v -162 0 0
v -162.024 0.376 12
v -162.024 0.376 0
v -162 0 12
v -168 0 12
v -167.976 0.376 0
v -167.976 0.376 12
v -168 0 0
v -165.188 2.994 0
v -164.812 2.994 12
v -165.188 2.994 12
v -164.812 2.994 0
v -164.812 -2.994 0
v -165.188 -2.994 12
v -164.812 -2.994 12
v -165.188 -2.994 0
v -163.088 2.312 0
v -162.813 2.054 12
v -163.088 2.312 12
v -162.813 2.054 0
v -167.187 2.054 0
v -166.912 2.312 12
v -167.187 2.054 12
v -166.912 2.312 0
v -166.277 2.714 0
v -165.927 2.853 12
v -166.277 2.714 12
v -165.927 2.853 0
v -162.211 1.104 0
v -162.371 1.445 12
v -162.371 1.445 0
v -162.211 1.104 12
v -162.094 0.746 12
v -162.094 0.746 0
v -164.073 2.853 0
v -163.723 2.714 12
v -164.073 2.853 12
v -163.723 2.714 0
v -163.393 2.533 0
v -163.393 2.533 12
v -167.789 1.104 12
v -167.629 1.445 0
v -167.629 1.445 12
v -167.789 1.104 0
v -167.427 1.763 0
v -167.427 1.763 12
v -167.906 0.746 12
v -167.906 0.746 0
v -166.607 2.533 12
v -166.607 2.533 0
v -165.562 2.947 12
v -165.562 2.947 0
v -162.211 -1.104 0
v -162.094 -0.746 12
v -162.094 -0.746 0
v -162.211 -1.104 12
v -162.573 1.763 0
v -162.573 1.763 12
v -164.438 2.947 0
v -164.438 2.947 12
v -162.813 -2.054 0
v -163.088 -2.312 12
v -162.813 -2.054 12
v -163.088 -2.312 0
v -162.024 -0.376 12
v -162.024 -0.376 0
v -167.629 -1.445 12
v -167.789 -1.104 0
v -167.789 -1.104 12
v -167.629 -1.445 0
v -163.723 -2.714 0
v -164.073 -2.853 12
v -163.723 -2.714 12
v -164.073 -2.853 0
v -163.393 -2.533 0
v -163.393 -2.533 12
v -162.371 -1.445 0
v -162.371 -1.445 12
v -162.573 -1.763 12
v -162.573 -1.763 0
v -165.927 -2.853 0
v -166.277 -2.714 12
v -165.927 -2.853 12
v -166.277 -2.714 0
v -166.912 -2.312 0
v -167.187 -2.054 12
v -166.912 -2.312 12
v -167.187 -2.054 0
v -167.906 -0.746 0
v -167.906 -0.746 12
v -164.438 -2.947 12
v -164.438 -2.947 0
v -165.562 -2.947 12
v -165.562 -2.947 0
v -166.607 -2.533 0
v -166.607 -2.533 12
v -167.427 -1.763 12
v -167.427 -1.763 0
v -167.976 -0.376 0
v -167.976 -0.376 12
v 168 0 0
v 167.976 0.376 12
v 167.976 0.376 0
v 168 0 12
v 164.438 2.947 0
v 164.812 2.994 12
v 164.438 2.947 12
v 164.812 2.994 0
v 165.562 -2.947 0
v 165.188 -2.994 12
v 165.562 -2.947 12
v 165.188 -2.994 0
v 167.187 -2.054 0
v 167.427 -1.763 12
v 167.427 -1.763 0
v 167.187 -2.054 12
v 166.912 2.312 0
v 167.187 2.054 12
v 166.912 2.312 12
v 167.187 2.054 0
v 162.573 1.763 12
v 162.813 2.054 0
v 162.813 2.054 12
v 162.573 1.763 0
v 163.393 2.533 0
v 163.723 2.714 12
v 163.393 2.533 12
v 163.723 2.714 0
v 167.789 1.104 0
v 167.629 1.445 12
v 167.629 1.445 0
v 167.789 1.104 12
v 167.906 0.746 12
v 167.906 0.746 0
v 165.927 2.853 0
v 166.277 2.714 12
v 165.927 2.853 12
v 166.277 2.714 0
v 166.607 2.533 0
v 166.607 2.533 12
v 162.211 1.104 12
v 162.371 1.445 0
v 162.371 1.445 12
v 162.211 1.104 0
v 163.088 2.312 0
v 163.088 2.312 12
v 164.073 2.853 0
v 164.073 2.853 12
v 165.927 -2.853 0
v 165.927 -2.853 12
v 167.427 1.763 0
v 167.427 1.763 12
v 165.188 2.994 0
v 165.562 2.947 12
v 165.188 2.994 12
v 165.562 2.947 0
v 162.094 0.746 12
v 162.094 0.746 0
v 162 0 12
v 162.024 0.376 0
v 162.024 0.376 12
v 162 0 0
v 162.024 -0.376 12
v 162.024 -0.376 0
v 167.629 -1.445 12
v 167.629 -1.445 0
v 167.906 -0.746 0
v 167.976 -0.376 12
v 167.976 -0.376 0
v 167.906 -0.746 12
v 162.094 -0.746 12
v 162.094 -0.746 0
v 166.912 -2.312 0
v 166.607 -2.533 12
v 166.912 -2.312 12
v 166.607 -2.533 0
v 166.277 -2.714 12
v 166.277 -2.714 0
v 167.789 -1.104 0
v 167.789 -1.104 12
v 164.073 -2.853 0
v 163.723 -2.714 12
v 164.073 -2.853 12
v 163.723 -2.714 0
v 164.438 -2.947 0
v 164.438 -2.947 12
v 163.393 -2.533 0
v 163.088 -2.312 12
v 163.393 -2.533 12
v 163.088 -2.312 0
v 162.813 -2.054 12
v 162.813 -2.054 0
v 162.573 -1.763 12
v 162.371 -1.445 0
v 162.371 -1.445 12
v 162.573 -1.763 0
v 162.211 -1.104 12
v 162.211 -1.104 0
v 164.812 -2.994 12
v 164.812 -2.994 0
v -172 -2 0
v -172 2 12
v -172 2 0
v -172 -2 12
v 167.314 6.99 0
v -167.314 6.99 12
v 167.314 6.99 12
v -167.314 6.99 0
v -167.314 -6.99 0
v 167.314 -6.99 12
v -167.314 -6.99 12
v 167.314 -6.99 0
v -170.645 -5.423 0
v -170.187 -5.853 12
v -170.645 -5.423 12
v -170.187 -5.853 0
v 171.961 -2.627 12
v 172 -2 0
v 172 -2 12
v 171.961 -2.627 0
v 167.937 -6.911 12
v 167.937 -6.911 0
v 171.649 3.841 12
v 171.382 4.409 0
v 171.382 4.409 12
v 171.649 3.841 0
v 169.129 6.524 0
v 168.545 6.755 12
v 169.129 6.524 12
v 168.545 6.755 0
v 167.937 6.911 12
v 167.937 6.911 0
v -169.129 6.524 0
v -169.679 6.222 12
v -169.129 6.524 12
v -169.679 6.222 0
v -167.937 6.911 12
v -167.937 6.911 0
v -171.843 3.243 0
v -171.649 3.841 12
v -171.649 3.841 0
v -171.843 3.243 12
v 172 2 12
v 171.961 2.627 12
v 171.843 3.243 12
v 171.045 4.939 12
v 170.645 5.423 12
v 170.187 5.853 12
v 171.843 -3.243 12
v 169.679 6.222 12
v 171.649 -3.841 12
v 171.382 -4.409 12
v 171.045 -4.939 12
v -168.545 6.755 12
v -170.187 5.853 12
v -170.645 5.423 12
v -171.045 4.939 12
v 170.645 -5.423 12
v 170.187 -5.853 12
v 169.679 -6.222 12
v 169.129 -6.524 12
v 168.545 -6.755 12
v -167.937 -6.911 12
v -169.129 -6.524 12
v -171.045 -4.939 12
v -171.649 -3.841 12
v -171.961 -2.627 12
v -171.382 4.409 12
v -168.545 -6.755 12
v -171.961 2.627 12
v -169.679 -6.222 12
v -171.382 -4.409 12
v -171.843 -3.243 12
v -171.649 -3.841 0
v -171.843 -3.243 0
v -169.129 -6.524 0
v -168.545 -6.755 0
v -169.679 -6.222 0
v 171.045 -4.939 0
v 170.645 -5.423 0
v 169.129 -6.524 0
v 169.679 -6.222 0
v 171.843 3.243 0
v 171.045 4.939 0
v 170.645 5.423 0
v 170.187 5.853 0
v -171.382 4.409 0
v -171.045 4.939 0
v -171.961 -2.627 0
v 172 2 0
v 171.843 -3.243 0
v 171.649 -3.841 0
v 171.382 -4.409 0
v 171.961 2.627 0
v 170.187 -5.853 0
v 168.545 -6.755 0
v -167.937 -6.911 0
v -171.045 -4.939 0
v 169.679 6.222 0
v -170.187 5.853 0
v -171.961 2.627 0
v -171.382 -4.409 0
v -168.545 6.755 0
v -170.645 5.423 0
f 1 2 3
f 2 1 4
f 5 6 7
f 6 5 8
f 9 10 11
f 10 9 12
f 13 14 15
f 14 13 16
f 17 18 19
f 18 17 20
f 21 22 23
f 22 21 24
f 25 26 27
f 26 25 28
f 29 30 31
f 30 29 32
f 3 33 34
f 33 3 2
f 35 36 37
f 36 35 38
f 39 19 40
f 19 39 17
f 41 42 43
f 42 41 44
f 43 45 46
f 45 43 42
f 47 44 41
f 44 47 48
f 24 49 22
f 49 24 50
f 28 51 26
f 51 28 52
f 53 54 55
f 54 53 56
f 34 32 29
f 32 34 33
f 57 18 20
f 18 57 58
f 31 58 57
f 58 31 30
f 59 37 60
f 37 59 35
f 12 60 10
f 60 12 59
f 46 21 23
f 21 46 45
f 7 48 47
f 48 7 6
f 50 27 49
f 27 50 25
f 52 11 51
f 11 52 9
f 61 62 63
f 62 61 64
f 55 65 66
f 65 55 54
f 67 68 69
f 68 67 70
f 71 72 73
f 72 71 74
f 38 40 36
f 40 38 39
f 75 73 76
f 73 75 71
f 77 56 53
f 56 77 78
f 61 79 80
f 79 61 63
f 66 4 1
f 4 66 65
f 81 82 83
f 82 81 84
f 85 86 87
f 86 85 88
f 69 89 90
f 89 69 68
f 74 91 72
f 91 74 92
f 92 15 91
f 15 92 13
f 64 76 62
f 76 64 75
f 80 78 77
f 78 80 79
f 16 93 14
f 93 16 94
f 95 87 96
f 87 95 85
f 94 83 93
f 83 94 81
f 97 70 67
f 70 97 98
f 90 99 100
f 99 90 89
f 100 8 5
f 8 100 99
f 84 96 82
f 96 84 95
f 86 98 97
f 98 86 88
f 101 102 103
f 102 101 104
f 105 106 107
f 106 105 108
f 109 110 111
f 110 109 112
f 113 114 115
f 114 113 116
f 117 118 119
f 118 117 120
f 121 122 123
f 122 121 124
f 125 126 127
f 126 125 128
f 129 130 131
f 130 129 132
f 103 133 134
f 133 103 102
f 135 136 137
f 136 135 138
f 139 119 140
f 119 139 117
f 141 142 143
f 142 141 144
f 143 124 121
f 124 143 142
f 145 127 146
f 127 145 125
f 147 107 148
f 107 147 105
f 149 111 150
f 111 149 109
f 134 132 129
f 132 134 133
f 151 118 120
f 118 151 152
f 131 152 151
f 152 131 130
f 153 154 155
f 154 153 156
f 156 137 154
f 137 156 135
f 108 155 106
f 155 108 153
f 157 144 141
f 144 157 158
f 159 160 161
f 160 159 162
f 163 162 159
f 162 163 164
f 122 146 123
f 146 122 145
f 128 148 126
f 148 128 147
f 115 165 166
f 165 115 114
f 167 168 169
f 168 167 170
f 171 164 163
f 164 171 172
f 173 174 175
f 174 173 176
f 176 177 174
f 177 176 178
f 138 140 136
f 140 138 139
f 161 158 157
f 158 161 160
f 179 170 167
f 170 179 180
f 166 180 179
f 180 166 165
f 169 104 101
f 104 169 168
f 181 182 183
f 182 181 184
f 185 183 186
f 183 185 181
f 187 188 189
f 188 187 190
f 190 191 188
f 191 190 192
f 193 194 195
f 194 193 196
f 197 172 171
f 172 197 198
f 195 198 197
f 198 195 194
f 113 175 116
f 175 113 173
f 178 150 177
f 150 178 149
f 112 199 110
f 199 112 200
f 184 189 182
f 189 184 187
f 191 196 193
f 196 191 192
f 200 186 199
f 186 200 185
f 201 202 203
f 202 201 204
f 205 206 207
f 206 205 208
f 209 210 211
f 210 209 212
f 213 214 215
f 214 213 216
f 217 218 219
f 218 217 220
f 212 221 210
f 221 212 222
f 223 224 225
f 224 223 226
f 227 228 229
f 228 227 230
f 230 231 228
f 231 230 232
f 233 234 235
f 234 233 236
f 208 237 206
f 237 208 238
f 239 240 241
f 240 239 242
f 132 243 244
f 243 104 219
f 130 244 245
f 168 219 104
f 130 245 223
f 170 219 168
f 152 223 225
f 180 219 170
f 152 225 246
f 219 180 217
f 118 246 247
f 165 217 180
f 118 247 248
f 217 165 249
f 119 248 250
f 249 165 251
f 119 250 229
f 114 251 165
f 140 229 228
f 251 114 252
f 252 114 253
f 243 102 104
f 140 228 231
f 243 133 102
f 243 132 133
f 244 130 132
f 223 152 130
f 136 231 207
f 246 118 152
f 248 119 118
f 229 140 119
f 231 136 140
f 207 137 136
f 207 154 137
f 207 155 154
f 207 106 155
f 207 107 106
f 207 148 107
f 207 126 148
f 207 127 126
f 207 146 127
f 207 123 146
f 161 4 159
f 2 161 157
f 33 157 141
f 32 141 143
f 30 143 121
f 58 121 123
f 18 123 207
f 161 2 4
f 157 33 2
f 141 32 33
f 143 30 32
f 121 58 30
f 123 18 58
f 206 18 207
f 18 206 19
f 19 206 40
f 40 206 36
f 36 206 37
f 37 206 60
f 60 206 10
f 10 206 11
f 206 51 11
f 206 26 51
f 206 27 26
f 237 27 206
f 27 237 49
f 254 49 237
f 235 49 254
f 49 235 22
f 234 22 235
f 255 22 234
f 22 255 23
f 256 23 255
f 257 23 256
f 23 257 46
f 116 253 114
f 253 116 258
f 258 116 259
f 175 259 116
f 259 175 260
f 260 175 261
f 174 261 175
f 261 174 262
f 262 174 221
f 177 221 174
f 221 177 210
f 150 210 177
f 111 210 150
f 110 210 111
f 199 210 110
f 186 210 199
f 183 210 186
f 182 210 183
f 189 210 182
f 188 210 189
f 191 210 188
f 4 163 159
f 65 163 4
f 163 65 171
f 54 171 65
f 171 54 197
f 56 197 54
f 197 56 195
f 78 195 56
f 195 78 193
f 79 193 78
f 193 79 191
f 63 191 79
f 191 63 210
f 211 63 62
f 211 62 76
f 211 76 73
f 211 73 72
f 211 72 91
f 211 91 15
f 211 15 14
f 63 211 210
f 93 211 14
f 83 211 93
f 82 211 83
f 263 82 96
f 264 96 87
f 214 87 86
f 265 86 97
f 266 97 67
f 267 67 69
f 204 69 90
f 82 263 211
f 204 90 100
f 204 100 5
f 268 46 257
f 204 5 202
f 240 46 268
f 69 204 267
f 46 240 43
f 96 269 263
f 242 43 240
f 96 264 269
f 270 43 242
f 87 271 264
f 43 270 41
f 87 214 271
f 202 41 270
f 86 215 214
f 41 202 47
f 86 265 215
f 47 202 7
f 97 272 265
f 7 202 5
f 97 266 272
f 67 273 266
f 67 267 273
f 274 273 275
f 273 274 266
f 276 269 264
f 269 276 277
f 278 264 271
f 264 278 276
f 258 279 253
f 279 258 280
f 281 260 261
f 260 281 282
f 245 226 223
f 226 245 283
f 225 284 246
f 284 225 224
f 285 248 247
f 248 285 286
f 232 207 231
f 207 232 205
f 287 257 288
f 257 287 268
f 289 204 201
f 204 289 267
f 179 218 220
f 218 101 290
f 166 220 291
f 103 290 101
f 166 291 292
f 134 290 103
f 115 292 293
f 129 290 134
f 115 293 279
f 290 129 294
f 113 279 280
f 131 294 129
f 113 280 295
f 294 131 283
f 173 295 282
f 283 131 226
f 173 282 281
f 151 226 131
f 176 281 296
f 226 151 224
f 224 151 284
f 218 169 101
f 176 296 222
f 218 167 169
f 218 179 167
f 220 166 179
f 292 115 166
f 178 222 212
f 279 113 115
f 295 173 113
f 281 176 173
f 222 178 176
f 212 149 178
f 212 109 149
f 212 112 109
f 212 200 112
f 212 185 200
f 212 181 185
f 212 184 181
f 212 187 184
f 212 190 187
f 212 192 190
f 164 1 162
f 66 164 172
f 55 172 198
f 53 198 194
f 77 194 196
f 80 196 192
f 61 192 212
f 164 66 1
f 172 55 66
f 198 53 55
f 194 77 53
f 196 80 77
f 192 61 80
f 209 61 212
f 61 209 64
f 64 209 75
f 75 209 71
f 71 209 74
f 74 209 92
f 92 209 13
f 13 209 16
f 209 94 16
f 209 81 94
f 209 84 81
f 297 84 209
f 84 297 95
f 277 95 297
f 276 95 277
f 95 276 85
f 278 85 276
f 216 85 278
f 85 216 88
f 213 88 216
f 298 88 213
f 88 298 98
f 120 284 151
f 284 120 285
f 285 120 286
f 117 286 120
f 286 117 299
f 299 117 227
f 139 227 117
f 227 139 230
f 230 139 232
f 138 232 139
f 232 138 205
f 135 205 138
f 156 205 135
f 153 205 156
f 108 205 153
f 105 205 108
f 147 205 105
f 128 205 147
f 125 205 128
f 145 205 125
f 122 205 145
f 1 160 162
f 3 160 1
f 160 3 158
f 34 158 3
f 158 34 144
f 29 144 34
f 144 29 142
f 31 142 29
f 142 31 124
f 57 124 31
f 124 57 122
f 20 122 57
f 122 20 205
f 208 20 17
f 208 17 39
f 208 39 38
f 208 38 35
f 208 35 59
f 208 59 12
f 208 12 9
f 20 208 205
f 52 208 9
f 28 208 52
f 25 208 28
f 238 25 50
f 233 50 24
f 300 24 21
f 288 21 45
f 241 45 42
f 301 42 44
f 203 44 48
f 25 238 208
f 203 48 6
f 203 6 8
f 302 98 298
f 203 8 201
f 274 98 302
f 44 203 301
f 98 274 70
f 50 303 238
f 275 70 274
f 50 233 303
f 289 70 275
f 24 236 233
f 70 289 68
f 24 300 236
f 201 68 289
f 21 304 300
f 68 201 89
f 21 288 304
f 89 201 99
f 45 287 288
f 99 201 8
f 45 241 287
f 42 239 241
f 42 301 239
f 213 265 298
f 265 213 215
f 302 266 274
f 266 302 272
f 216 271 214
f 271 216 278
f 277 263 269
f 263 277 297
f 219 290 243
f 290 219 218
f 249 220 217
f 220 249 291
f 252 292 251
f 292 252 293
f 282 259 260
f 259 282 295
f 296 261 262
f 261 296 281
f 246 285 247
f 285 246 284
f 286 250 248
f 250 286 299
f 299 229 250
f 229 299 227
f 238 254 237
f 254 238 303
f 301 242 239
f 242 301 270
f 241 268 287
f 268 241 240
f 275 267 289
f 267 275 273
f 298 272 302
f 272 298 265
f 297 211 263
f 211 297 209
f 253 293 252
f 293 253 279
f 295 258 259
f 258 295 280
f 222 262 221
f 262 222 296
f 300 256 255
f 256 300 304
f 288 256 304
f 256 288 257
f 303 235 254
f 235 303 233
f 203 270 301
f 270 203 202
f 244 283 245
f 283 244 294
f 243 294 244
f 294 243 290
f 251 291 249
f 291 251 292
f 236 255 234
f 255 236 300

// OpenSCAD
$fn = 50;


difference() {
	union() {
		hull() {
			translate(v = [-167.0000000000, 2.0000000000, 0]) {
				cylinder(h = 12, r = 5);
			}
			translate(v = [167.0000000000, 2.0000000000, 0]) {
				cylinder(h = 12, r = 5);
			}
			translate(v = [-167.0000000000, -2.0000000000, 0]) {
				cylinder(h = 12, r = 5);
			}
			translate(v = [167.0000000000, -2.0000000000, 0]) {
				cylinder(h = 12, r = 5);
			}
		}
	}
	union() {
		translate(v = [-165.0000000000, 0.0000000000, -100.0000000000]) {
			cylinder(h = 200, r = 3.0000000000);
		}
		translate(v = [-165.0000000000, 0.0000000000, -100.0000000000]) {
			cylinder(h = 200, r = 3.0000000000);
		}
		translate(v = [165.0000000000, 0.0000000000, -100.0000000000]) {
			cylinder(h = 200, r = 3.0000000000);
		}
		translate(v = [165.0000000000, 0.0000000000, -100.0000000000]) {
			cylinder(h = 200, r = 3.0000000000);
		}
	}
}
